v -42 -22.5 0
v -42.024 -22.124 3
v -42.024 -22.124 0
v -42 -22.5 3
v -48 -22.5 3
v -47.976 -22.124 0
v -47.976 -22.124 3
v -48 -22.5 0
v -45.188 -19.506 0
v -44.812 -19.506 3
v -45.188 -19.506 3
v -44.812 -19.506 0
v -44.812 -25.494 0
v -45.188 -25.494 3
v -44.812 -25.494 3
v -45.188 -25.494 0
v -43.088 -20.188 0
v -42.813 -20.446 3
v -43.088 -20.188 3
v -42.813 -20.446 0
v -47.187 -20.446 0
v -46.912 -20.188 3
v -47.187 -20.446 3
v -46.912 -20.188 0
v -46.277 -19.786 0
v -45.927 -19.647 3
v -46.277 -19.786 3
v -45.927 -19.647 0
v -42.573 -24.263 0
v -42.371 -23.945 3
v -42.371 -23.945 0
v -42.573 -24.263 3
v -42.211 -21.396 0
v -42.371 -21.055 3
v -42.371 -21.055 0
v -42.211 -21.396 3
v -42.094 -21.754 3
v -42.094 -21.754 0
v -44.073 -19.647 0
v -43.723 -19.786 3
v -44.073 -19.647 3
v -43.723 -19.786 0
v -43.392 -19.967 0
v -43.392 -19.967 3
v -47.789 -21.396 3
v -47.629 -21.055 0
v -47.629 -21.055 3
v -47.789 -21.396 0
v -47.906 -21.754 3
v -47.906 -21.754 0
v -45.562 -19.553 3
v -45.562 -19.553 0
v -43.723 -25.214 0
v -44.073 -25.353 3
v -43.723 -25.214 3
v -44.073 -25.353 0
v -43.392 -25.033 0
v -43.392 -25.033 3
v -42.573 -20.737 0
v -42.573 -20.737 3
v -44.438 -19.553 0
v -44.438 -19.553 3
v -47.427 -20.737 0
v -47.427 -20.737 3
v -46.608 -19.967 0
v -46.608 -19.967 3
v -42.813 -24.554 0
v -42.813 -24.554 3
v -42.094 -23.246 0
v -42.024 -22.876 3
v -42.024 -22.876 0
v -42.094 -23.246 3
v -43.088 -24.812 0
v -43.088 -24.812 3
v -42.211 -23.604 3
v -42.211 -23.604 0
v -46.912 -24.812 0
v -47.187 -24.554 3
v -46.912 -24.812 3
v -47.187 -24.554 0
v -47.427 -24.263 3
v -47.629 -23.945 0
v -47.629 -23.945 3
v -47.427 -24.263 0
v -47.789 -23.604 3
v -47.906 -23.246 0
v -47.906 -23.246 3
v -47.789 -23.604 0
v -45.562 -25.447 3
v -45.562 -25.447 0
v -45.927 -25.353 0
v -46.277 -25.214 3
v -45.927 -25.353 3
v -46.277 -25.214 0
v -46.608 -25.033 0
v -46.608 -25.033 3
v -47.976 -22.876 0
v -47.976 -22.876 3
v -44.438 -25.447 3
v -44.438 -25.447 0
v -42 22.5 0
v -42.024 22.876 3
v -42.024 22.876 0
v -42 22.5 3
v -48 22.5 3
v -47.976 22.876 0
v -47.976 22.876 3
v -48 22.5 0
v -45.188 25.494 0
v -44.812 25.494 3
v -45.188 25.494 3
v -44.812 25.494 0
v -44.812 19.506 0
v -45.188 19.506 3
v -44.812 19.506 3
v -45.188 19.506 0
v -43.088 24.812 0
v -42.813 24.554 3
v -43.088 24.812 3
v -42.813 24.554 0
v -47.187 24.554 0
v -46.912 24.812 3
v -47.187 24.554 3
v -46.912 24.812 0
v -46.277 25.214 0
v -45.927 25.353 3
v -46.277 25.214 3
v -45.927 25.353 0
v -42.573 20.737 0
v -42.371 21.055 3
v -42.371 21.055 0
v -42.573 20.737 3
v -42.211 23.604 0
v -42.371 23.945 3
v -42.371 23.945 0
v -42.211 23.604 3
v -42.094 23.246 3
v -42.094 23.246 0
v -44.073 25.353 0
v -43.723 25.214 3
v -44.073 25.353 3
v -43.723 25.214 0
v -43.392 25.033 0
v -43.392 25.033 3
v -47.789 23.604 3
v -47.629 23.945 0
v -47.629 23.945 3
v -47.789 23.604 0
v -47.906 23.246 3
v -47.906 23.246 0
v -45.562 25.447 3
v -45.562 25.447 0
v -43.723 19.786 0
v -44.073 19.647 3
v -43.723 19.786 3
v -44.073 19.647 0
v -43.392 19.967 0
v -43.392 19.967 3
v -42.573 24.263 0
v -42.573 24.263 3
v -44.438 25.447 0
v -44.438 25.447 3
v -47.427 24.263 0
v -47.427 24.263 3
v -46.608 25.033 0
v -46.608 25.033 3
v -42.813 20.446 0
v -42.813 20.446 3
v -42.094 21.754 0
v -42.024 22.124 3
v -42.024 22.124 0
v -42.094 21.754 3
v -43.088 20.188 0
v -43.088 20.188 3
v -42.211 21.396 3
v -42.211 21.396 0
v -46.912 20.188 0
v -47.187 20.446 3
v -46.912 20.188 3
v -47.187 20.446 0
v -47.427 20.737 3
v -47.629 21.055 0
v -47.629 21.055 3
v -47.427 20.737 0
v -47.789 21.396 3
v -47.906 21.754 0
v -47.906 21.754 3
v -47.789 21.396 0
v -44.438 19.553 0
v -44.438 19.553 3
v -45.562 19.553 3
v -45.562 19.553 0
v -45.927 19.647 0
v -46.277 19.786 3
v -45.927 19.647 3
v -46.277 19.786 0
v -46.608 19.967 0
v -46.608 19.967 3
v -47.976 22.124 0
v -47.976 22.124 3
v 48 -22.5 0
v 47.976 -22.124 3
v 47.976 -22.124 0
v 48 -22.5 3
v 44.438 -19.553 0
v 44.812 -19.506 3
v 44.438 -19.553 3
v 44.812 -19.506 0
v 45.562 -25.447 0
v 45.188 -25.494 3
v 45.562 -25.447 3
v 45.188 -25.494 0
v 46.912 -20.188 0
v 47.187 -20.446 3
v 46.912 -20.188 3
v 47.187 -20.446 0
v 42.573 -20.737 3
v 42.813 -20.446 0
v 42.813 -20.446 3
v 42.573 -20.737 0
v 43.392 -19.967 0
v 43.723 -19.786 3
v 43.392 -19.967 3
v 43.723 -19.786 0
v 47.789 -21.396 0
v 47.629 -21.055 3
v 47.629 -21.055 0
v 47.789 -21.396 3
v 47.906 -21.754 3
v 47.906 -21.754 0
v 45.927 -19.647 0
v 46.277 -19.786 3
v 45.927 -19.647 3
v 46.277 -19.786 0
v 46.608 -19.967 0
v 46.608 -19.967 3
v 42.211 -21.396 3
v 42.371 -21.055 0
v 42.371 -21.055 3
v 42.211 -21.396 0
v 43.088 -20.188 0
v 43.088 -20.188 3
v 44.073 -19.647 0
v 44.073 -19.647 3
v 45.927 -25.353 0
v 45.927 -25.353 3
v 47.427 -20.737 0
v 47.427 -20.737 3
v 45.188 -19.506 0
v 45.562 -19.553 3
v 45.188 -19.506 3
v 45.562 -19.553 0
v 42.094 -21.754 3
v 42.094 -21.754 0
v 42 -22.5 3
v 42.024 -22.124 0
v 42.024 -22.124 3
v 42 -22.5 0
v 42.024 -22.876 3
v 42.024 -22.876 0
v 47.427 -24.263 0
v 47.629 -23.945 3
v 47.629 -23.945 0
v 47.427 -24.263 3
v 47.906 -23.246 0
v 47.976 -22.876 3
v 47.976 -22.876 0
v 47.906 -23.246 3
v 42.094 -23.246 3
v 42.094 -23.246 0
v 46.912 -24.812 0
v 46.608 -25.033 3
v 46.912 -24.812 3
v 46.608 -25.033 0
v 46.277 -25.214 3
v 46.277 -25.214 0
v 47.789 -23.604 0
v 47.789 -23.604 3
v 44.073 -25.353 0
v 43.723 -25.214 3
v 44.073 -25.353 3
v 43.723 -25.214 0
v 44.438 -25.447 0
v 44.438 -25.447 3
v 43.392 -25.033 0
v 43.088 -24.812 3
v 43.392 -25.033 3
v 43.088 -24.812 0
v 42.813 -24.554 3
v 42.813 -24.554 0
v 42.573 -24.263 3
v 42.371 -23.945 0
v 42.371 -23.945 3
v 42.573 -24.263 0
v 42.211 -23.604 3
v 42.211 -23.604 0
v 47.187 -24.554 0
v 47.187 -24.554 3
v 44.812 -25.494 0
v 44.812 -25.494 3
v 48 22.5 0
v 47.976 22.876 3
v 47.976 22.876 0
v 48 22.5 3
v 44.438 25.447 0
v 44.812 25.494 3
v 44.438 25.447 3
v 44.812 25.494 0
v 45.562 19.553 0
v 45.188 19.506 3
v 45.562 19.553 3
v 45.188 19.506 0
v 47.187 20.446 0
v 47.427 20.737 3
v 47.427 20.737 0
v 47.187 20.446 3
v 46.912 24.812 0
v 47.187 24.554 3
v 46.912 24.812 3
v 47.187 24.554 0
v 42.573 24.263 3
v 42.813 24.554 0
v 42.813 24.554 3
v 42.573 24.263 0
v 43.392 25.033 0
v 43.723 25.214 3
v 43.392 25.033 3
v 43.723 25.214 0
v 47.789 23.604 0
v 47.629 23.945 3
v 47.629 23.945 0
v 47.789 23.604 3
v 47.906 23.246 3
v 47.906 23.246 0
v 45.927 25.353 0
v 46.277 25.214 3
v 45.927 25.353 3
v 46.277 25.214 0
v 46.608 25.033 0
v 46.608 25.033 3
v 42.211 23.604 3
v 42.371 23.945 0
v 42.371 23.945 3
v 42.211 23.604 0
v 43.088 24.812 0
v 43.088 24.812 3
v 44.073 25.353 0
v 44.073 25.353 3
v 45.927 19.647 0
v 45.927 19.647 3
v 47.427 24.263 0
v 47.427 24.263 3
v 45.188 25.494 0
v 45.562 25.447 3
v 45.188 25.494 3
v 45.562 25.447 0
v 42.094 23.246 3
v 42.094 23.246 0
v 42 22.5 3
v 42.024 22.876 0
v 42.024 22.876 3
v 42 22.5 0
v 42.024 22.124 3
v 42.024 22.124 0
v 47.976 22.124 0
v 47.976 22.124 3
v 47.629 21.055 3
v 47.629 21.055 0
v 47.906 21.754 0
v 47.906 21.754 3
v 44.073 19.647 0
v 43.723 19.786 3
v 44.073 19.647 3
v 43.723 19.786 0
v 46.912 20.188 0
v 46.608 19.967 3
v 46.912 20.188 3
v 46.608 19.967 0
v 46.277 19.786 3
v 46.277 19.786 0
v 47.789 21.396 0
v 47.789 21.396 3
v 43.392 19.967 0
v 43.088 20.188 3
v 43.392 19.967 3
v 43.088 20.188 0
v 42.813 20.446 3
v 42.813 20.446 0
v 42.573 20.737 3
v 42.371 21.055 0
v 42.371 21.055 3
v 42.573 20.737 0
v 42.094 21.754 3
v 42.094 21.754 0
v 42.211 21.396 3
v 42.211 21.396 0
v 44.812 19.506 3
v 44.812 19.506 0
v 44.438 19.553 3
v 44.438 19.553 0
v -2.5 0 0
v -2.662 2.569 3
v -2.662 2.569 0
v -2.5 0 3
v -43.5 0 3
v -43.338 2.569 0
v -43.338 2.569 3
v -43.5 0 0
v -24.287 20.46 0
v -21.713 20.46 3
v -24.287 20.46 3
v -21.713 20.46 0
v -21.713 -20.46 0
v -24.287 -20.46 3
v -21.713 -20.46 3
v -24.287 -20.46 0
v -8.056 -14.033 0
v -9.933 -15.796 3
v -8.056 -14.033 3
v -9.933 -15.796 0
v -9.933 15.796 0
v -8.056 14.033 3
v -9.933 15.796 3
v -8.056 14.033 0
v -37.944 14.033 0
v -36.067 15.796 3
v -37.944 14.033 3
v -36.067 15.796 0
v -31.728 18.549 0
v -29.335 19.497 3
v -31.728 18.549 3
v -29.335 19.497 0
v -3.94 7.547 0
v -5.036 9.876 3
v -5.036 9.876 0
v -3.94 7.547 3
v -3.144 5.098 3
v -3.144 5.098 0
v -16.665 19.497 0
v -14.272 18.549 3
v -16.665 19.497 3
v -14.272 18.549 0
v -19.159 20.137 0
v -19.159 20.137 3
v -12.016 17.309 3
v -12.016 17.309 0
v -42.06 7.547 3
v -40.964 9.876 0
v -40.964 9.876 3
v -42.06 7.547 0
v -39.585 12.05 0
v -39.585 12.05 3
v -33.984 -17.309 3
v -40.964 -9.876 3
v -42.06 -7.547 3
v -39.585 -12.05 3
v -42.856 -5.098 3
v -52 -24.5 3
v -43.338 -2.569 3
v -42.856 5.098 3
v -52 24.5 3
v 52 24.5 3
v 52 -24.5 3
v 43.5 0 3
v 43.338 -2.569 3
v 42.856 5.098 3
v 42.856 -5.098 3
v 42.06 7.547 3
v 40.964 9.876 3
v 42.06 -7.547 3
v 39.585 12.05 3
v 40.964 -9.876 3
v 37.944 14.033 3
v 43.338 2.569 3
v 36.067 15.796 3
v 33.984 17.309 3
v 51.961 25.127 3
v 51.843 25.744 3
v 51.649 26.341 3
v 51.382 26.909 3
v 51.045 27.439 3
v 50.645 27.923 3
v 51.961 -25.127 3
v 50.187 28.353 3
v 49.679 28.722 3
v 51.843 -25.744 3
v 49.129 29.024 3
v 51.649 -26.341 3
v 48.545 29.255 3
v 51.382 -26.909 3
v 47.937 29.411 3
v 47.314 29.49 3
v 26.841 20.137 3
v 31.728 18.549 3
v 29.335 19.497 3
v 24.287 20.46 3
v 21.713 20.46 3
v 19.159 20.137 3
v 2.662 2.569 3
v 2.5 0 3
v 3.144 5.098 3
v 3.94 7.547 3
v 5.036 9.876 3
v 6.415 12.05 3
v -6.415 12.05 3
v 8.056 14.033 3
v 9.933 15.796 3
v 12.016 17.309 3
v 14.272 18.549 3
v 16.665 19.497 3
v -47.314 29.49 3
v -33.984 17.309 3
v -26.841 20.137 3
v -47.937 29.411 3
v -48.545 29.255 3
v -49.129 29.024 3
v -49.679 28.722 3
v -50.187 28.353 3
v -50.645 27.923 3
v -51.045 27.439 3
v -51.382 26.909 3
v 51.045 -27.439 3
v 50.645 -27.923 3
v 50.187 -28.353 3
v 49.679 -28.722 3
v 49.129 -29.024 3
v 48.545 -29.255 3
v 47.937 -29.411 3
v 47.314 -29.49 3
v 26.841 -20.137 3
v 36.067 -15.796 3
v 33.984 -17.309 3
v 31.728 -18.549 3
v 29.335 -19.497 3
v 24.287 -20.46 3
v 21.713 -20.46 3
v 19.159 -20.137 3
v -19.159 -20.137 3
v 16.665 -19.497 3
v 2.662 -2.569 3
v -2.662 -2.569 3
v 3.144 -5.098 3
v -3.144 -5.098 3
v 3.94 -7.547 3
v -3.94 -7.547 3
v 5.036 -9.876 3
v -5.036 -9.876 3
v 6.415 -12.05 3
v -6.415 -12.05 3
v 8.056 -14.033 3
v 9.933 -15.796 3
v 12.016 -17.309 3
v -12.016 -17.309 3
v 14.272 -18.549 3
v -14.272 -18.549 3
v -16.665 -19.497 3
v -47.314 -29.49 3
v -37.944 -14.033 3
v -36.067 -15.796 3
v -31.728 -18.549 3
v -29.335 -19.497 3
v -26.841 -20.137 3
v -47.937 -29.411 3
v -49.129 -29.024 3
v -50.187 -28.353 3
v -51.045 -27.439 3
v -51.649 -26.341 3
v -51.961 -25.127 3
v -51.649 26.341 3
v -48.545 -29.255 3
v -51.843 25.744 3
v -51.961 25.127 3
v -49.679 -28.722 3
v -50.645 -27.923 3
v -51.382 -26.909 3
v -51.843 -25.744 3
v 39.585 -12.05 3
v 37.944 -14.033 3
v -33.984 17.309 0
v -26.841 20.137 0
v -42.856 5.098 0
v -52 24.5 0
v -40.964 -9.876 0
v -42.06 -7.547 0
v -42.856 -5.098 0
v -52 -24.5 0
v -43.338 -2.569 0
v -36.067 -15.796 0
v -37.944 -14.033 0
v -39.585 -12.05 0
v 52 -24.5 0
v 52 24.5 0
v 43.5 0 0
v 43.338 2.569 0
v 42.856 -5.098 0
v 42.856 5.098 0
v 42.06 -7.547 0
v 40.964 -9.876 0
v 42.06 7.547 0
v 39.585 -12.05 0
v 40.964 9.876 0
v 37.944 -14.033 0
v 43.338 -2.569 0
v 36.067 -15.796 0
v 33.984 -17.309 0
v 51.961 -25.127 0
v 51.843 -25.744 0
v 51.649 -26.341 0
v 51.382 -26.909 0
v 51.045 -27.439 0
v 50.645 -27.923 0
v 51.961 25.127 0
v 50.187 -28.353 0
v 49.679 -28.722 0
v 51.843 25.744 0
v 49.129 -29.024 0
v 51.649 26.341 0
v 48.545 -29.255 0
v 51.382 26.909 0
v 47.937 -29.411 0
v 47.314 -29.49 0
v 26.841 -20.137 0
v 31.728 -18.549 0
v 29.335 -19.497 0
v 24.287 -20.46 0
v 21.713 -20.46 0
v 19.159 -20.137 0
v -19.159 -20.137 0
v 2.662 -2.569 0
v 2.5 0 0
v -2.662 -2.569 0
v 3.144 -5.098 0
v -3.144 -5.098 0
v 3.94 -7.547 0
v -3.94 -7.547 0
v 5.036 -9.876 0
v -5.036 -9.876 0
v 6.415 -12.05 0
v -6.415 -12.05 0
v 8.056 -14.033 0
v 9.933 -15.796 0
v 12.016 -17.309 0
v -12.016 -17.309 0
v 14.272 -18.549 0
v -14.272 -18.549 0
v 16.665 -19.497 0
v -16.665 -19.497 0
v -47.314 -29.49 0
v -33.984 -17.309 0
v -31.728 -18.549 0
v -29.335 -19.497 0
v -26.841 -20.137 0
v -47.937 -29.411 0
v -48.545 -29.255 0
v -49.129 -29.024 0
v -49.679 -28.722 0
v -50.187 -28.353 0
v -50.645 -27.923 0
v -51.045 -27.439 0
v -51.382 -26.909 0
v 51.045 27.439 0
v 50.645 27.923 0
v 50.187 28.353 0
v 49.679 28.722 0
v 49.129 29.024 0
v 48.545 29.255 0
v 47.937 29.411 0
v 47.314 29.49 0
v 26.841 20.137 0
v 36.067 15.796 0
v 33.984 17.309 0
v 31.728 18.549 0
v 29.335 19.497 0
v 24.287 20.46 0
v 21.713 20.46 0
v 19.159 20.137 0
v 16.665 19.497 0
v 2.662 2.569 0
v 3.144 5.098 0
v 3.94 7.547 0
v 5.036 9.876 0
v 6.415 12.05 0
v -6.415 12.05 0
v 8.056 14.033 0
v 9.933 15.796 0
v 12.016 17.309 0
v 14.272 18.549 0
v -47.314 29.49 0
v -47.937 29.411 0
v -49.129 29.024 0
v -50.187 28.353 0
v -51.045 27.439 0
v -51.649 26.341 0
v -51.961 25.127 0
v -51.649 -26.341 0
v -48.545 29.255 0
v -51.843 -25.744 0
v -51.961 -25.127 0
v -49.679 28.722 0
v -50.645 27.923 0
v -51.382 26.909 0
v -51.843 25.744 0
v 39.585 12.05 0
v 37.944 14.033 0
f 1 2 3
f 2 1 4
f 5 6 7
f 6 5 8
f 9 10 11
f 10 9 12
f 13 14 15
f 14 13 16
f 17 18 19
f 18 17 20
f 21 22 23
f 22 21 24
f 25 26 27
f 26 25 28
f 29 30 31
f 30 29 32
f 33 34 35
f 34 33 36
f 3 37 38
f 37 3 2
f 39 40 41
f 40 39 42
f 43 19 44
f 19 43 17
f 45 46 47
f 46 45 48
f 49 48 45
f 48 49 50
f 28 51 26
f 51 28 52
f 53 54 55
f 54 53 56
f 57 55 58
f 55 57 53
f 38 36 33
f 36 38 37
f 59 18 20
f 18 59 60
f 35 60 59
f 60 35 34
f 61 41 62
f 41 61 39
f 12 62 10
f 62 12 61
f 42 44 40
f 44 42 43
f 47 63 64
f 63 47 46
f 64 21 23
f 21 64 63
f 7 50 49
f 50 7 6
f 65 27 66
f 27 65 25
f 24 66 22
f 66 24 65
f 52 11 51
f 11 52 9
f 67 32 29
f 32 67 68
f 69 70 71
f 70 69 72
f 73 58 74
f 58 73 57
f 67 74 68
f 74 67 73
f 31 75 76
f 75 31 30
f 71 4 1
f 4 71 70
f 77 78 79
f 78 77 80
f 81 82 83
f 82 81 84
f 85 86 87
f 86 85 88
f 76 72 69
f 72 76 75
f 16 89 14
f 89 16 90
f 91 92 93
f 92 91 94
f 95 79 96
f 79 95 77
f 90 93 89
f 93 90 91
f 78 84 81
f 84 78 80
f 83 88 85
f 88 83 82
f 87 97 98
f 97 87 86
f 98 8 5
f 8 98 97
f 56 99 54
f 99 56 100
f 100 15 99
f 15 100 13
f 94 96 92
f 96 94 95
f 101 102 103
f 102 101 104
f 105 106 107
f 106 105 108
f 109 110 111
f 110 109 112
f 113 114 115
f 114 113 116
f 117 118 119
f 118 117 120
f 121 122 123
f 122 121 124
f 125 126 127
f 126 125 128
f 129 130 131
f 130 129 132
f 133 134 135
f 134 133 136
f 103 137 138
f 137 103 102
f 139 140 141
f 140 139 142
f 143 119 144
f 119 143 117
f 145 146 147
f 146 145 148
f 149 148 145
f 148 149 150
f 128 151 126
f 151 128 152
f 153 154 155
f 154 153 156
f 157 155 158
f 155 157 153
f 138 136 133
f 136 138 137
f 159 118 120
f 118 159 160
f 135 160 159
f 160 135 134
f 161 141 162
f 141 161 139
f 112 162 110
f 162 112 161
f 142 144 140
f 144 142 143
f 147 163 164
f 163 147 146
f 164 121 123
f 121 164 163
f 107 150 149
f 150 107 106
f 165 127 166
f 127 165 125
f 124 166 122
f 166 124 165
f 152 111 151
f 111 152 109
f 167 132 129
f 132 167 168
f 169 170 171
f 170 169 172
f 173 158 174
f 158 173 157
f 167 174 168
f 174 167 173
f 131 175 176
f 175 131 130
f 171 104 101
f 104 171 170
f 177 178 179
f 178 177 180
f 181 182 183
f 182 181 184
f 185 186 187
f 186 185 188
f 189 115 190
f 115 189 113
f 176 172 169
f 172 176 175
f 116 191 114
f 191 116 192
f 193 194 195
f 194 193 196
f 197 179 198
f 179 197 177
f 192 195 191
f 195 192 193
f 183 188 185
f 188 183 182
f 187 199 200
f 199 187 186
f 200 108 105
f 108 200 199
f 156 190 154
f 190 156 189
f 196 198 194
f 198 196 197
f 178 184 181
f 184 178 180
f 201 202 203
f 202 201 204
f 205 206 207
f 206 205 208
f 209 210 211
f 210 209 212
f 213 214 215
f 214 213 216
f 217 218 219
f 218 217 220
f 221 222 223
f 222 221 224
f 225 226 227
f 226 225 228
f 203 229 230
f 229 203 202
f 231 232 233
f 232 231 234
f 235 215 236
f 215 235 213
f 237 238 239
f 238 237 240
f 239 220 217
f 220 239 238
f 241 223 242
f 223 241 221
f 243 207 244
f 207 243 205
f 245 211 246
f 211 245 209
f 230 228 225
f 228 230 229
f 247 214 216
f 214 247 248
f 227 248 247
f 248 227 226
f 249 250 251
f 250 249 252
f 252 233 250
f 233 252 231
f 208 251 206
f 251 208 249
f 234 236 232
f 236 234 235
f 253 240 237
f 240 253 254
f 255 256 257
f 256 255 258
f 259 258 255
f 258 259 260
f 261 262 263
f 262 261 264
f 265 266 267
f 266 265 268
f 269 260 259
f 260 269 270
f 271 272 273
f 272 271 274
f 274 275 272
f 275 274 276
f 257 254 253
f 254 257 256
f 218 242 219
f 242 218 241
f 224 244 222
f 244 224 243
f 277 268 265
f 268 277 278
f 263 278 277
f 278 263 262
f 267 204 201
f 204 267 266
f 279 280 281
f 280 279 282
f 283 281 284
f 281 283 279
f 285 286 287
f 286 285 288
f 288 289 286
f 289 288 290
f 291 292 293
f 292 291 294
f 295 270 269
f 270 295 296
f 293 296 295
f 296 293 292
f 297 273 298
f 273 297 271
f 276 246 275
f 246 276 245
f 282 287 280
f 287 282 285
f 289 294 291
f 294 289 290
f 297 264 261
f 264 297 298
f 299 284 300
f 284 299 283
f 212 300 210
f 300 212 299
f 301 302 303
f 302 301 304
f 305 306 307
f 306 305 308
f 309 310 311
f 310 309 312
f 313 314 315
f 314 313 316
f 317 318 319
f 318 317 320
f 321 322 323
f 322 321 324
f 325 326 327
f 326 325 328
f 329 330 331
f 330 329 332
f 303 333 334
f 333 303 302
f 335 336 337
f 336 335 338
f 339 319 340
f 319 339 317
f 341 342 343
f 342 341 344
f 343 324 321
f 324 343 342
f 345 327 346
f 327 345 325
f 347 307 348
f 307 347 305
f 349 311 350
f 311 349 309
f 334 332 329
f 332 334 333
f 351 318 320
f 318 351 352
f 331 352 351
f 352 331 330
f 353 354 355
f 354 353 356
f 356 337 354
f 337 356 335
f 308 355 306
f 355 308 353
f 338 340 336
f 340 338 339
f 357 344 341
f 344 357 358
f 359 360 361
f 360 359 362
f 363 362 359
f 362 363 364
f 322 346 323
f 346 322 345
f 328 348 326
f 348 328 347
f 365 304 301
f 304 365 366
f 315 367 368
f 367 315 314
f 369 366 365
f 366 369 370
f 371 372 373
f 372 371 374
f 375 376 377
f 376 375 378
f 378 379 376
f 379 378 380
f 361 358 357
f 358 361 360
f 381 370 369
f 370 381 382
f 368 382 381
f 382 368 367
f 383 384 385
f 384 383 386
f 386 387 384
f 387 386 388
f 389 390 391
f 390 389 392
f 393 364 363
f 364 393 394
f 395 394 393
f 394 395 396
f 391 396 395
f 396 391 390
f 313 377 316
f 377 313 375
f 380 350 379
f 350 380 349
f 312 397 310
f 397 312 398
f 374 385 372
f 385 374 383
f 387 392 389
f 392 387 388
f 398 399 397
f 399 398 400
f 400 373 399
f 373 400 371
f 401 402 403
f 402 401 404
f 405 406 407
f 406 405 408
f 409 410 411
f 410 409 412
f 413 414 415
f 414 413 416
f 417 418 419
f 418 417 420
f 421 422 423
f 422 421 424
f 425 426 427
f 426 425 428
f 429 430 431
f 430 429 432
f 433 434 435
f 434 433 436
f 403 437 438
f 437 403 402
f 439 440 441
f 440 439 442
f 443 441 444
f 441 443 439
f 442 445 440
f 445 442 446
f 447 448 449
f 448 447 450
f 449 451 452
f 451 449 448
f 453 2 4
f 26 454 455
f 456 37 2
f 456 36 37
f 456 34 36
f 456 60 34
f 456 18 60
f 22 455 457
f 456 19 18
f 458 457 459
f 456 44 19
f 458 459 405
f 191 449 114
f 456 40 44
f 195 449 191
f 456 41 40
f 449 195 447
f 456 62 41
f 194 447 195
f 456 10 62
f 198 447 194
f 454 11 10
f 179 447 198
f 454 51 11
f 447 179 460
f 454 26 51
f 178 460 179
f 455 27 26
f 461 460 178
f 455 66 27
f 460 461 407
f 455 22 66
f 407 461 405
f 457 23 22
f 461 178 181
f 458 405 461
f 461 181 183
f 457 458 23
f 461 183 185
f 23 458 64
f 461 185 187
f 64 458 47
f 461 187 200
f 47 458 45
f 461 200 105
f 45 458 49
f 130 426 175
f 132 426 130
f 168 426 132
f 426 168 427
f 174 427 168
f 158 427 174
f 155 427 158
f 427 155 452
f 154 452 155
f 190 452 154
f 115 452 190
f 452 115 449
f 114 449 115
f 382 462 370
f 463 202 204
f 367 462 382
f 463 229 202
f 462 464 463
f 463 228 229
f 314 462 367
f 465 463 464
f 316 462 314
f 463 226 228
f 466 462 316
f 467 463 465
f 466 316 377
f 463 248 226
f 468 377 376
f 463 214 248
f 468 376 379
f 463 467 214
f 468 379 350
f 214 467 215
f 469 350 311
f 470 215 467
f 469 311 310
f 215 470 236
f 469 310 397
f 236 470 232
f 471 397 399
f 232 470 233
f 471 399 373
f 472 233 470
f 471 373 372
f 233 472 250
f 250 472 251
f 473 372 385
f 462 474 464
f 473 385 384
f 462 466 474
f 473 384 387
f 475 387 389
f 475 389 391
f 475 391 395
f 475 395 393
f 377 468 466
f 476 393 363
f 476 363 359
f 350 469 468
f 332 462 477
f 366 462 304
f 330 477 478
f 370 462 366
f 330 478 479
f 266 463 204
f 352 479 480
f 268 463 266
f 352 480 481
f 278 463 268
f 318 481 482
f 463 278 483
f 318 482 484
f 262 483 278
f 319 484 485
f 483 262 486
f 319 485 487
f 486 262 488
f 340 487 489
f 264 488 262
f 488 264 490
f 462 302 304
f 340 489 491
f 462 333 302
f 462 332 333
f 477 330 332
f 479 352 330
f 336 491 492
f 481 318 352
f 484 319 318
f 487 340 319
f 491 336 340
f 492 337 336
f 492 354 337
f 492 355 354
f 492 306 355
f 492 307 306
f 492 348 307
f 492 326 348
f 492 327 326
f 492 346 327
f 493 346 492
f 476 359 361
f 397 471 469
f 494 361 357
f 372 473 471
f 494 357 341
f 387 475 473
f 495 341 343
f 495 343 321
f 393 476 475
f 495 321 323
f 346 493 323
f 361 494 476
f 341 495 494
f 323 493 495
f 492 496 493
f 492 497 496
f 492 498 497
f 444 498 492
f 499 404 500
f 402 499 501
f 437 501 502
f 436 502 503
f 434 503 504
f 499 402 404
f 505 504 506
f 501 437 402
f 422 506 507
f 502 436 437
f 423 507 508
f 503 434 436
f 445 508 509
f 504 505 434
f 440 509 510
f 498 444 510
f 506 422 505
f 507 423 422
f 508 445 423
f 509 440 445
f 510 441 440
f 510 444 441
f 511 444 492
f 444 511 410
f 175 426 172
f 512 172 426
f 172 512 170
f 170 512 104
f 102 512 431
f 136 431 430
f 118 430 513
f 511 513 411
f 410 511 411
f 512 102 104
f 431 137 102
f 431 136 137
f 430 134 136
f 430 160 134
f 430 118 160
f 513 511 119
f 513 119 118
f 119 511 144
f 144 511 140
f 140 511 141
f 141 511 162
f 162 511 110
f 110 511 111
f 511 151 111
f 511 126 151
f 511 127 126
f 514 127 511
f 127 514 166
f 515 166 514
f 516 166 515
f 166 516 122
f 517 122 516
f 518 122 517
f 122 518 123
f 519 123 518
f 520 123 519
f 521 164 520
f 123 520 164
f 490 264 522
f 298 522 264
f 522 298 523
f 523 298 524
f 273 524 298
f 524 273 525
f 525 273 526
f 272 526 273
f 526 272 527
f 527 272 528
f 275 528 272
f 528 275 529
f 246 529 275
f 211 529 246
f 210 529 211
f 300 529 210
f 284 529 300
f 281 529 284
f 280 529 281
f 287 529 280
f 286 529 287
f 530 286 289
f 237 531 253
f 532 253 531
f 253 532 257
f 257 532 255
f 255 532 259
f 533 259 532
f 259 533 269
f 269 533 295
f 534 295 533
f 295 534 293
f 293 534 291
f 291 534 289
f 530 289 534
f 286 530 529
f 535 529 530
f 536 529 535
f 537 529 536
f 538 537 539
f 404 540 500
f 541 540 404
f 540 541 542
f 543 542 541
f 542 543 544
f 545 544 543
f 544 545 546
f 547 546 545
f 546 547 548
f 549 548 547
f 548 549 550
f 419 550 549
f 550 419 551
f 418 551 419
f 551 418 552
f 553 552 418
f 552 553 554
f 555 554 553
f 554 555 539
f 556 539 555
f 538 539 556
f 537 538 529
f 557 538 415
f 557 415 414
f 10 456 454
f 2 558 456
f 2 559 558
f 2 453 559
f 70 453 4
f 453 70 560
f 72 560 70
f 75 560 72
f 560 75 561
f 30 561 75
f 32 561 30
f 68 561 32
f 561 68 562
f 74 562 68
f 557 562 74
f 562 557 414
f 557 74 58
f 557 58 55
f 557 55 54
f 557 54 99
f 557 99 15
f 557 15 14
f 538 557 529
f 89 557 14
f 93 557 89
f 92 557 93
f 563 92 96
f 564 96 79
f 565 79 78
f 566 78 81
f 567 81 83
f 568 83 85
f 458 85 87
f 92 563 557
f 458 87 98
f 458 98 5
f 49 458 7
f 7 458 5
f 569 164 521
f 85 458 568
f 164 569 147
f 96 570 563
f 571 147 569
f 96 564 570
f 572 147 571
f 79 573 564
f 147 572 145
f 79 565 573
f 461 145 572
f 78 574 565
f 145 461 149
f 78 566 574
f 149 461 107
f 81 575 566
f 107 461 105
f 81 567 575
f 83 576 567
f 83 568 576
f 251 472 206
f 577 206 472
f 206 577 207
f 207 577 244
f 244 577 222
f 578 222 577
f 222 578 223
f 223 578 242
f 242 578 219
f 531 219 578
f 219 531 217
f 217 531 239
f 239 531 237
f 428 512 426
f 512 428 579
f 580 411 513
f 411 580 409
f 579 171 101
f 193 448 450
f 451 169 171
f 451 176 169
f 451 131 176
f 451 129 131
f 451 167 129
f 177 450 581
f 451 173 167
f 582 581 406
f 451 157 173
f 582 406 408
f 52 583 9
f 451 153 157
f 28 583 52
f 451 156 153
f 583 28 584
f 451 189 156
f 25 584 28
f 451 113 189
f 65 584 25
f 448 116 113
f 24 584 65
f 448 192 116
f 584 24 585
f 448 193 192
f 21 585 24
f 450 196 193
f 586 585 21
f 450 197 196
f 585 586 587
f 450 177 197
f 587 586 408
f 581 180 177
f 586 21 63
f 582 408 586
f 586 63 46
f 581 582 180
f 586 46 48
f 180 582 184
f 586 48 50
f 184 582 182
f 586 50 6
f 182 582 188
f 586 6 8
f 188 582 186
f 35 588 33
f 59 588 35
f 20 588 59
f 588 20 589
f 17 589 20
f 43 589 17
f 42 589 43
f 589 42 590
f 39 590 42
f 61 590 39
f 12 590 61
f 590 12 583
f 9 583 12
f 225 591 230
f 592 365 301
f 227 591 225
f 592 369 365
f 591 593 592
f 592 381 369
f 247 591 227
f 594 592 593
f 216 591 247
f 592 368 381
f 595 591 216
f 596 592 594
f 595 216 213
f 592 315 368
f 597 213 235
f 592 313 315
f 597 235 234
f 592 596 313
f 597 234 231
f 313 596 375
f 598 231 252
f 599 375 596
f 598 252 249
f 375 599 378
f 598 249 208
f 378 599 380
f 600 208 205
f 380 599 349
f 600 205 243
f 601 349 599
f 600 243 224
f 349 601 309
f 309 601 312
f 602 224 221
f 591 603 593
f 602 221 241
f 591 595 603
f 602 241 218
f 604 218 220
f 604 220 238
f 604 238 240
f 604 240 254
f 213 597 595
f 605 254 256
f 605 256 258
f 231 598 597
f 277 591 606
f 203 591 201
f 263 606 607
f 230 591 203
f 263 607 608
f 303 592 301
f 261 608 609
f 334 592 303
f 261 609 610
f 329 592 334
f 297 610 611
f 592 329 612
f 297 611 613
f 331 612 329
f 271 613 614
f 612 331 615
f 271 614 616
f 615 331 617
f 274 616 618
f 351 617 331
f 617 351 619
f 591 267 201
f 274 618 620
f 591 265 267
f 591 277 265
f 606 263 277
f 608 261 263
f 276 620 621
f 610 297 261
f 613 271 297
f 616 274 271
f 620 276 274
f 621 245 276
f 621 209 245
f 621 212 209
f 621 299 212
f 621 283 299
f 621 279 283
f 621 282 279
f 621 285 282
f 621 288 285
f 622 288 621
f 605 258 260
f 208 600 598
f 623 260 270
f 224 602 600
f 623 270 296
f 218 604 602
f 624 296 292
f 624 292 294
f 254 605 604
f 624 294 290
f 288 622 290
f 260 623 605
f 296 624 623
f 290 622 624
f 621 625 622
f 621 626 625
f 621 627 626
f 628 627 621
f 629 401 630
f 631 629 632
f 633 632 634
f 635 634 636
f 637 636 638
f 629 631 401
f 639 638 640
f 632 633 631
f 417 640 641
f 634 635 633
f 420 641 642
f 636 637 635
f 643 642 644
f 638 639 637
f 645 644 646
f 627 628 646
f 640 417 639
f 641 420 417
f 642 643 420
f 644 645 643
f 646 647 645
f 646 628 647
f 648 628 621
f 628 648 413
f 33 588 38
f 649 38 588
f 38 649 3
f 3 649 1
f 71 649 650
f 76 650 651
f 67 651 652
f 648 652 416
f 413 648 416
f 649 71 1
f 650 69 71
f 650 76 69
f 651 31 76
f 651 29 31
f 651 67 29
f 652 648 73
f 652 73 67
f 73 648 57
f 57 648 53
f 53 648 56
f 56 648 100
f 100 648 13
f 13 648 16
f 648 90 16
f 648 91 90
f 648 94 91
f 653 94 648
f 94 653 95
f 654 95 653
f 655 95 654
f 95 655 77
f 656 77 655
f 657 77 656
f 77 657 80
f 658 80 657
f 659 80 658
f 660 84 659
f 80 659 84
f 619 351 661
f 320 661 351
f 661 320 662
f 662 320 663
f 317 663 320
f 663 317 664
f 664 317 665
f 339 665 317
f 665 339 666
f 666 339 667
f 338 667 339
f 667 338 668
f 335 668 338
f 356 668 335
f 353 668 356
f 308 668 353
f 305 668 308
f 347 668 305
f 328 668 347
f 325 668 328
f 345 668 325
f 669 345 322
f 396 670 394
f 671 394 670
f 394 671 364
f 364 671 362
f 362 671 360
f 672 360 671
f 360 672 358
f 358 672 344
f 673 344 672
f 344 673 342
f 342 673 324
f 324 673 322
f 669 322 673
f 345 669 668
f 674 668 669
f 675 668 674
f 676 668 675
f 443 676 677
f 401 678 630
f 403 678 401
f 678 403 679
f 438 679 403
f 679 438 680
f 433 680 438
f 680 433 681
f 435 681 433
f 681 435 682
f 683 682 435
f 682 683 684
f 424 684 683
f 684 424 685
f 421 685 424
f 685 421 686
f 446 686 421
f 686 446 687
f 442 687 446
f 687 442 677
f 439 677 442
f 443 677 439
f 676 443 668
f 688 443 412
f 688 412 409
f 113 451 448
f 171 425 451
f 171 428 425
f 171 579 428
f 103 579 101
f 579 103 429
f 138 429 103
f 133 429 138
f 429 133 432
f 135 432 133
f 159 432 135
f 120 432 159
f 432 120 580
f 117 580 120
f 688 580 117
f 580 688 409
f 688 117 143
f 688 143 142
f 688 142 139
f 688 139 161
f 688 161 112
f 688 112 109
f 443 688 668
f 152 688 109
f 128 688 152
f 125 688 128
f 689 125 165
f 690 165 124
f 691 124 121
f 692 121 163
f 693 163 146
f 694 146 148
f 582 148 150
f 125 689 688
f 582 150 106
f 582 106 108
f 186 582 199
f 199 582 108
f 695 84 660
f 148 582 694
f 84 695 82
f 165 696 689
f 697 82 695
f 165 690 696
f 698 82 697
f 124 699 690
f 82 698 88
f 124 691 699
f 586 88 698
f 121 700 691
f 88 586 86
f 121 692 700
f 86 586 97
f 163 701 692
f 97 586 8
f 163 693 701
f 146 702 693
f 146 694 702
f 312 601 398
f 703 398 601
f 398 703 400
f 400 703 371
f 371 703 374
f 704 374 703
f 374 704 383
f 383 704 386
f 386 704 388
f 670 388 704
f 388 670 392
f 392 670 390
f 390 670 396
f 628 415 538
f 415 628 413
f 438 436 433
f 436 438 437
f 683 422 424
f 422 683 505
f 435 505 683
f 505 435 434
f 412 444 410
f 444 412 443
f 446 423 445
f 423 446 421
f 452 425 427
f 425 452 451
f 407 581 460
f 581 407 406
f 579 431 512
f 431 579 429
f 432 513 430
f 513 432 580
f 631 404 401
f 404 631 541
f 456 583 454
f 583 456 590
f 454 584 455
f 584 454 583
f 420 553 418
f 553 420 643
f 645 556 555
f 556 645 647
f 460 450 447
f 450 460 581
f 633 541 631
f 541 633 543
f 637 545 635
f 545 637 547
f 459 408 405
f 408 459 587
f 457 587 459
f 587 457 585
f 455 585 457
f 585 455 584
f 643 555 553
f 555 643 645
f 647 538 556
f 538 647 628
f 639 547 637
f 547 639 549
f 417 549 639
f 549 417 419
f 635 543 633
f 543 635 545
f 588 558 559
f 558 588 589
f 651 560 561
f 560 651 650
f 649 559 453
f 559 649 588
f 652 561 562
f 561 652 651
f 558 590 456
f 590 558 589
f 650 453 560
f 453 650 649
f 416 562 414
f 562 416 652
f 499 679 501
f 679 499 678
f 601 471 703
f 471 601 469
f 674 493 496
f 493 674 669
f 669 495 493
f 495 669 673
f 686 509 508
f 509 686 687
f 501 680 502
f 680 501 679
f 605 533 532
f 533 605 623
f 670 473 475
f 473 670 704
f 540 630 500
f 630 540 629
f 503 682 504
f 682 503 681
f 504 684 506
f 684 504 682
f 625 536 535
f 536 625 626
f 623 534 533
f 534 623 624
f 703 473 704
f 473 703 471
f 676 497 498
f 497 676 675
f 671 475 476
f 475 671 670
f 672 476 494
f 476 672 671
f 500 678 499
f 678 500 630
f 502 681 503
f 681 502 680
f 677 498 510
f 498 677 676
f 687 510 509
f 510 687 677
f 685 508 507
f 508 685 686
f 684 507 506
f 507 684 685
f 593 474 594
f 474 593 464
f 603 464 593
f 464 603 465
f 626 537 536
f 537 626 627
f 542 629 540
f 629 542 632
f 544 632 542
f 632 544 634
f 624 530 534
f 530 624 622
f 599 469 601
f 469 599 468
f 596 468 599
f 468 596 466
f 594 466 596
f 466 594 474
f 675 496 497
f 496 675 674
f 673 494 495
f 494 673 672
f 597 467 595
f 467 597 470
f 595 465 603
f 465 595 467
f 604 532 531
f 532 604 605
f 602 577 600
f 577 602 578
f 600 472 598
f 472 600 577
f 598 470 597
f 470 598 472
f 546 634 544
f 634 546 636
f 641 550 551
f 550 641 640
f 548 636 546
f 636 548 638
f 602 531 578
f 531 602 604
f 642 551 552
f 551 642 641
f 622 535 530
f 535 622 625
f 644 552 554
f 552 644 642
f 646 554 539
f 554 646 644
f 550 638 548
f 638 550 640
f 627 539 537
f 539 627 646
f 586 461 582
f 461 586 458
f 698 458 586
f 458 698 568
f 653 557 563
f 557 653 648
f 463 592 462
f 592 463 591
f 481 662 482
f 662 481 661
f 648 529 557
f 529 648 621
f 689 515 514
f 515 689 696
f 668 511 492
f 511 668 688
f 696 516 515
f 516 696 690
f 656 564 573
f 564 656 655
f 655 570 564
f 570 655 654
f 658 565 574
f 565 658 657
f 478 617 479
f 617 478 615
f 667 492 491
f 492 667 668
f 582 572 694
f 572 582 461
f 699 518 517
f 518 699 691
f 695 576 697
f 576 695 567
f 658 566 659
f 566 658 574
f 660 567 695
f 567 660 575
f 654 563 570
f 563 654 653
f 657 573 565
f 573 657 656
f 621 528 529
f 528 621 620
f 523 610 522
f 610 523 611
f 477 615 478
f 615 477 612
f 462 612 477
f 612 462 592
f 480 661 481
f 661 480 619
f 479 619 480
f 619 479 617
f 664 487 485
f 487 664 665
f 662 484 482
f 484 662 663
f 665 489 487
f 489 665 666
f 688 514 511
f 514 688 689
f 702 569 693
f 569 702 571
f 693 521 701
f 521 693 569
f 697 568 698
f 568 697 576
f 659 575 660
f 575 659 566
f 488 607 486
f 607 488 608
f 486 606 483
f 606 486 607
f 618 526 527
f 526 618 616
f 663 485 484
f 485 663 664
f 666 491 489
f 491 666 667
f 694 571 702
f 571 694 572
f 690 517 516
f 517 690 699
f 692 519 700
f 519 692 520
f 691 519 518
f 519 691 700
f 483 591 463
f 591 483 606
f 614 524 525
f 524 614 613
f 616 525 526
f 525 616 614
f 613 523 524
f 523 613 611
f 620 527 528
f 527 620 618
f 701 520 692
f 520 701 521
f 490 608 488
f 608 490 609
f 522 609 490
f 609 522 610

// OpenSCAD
$fn = 50;


difference() {
	union() {
		hull() {
			translate(v = [-47.0000000000, 24.5000000000, 0]) {
				cylinder(h = 3, r = 5);
			}
			translate(v = [47.0000000000, 24.5000000000, 0]) {
				cylinder(h = 3, r = 5);
			}
			translate(v = [-47.0000000000, -24.5000000000, 0]) {
				cylinder(h = 3, r = 5);
			}
			translate(v = [47.0000000000, -24.5000000000, 0]) {
				cylinder(h = 3, r = 5);
			}
		}
	}
	union() {
		#translate(v = [-45.0000000000, -22.5000000000, -100.0000000000]) {
			cylinder(h = 200, r = 3.0000000000);
		}
		#translate(v = [-45.0000000000, 22.5000000000, -100.0000000000]) {
			cylinder(h = 200, r = 3.0000000000);
		}
		#translate(v = [45.0000000000, -22.5000000000, -100.0000000000]) {
			cylinder(h = 200, r = 3.0000000000);
		}
		#translate(v = [45.0000000000, 22.5000000000, -100.0000000000]) {
			cylinder(h = 200, r = 3.0000000000);
		}
		#translate(v = [-23.0000000000, 0, 0]) {
			cylinder(h = 3, r = 20.5000000000);
		}
		#translate(v = [23.0000000000, 0, 0]) {
			cylinder(h = 3, r = 20.5000000000);
		}
	}
}
